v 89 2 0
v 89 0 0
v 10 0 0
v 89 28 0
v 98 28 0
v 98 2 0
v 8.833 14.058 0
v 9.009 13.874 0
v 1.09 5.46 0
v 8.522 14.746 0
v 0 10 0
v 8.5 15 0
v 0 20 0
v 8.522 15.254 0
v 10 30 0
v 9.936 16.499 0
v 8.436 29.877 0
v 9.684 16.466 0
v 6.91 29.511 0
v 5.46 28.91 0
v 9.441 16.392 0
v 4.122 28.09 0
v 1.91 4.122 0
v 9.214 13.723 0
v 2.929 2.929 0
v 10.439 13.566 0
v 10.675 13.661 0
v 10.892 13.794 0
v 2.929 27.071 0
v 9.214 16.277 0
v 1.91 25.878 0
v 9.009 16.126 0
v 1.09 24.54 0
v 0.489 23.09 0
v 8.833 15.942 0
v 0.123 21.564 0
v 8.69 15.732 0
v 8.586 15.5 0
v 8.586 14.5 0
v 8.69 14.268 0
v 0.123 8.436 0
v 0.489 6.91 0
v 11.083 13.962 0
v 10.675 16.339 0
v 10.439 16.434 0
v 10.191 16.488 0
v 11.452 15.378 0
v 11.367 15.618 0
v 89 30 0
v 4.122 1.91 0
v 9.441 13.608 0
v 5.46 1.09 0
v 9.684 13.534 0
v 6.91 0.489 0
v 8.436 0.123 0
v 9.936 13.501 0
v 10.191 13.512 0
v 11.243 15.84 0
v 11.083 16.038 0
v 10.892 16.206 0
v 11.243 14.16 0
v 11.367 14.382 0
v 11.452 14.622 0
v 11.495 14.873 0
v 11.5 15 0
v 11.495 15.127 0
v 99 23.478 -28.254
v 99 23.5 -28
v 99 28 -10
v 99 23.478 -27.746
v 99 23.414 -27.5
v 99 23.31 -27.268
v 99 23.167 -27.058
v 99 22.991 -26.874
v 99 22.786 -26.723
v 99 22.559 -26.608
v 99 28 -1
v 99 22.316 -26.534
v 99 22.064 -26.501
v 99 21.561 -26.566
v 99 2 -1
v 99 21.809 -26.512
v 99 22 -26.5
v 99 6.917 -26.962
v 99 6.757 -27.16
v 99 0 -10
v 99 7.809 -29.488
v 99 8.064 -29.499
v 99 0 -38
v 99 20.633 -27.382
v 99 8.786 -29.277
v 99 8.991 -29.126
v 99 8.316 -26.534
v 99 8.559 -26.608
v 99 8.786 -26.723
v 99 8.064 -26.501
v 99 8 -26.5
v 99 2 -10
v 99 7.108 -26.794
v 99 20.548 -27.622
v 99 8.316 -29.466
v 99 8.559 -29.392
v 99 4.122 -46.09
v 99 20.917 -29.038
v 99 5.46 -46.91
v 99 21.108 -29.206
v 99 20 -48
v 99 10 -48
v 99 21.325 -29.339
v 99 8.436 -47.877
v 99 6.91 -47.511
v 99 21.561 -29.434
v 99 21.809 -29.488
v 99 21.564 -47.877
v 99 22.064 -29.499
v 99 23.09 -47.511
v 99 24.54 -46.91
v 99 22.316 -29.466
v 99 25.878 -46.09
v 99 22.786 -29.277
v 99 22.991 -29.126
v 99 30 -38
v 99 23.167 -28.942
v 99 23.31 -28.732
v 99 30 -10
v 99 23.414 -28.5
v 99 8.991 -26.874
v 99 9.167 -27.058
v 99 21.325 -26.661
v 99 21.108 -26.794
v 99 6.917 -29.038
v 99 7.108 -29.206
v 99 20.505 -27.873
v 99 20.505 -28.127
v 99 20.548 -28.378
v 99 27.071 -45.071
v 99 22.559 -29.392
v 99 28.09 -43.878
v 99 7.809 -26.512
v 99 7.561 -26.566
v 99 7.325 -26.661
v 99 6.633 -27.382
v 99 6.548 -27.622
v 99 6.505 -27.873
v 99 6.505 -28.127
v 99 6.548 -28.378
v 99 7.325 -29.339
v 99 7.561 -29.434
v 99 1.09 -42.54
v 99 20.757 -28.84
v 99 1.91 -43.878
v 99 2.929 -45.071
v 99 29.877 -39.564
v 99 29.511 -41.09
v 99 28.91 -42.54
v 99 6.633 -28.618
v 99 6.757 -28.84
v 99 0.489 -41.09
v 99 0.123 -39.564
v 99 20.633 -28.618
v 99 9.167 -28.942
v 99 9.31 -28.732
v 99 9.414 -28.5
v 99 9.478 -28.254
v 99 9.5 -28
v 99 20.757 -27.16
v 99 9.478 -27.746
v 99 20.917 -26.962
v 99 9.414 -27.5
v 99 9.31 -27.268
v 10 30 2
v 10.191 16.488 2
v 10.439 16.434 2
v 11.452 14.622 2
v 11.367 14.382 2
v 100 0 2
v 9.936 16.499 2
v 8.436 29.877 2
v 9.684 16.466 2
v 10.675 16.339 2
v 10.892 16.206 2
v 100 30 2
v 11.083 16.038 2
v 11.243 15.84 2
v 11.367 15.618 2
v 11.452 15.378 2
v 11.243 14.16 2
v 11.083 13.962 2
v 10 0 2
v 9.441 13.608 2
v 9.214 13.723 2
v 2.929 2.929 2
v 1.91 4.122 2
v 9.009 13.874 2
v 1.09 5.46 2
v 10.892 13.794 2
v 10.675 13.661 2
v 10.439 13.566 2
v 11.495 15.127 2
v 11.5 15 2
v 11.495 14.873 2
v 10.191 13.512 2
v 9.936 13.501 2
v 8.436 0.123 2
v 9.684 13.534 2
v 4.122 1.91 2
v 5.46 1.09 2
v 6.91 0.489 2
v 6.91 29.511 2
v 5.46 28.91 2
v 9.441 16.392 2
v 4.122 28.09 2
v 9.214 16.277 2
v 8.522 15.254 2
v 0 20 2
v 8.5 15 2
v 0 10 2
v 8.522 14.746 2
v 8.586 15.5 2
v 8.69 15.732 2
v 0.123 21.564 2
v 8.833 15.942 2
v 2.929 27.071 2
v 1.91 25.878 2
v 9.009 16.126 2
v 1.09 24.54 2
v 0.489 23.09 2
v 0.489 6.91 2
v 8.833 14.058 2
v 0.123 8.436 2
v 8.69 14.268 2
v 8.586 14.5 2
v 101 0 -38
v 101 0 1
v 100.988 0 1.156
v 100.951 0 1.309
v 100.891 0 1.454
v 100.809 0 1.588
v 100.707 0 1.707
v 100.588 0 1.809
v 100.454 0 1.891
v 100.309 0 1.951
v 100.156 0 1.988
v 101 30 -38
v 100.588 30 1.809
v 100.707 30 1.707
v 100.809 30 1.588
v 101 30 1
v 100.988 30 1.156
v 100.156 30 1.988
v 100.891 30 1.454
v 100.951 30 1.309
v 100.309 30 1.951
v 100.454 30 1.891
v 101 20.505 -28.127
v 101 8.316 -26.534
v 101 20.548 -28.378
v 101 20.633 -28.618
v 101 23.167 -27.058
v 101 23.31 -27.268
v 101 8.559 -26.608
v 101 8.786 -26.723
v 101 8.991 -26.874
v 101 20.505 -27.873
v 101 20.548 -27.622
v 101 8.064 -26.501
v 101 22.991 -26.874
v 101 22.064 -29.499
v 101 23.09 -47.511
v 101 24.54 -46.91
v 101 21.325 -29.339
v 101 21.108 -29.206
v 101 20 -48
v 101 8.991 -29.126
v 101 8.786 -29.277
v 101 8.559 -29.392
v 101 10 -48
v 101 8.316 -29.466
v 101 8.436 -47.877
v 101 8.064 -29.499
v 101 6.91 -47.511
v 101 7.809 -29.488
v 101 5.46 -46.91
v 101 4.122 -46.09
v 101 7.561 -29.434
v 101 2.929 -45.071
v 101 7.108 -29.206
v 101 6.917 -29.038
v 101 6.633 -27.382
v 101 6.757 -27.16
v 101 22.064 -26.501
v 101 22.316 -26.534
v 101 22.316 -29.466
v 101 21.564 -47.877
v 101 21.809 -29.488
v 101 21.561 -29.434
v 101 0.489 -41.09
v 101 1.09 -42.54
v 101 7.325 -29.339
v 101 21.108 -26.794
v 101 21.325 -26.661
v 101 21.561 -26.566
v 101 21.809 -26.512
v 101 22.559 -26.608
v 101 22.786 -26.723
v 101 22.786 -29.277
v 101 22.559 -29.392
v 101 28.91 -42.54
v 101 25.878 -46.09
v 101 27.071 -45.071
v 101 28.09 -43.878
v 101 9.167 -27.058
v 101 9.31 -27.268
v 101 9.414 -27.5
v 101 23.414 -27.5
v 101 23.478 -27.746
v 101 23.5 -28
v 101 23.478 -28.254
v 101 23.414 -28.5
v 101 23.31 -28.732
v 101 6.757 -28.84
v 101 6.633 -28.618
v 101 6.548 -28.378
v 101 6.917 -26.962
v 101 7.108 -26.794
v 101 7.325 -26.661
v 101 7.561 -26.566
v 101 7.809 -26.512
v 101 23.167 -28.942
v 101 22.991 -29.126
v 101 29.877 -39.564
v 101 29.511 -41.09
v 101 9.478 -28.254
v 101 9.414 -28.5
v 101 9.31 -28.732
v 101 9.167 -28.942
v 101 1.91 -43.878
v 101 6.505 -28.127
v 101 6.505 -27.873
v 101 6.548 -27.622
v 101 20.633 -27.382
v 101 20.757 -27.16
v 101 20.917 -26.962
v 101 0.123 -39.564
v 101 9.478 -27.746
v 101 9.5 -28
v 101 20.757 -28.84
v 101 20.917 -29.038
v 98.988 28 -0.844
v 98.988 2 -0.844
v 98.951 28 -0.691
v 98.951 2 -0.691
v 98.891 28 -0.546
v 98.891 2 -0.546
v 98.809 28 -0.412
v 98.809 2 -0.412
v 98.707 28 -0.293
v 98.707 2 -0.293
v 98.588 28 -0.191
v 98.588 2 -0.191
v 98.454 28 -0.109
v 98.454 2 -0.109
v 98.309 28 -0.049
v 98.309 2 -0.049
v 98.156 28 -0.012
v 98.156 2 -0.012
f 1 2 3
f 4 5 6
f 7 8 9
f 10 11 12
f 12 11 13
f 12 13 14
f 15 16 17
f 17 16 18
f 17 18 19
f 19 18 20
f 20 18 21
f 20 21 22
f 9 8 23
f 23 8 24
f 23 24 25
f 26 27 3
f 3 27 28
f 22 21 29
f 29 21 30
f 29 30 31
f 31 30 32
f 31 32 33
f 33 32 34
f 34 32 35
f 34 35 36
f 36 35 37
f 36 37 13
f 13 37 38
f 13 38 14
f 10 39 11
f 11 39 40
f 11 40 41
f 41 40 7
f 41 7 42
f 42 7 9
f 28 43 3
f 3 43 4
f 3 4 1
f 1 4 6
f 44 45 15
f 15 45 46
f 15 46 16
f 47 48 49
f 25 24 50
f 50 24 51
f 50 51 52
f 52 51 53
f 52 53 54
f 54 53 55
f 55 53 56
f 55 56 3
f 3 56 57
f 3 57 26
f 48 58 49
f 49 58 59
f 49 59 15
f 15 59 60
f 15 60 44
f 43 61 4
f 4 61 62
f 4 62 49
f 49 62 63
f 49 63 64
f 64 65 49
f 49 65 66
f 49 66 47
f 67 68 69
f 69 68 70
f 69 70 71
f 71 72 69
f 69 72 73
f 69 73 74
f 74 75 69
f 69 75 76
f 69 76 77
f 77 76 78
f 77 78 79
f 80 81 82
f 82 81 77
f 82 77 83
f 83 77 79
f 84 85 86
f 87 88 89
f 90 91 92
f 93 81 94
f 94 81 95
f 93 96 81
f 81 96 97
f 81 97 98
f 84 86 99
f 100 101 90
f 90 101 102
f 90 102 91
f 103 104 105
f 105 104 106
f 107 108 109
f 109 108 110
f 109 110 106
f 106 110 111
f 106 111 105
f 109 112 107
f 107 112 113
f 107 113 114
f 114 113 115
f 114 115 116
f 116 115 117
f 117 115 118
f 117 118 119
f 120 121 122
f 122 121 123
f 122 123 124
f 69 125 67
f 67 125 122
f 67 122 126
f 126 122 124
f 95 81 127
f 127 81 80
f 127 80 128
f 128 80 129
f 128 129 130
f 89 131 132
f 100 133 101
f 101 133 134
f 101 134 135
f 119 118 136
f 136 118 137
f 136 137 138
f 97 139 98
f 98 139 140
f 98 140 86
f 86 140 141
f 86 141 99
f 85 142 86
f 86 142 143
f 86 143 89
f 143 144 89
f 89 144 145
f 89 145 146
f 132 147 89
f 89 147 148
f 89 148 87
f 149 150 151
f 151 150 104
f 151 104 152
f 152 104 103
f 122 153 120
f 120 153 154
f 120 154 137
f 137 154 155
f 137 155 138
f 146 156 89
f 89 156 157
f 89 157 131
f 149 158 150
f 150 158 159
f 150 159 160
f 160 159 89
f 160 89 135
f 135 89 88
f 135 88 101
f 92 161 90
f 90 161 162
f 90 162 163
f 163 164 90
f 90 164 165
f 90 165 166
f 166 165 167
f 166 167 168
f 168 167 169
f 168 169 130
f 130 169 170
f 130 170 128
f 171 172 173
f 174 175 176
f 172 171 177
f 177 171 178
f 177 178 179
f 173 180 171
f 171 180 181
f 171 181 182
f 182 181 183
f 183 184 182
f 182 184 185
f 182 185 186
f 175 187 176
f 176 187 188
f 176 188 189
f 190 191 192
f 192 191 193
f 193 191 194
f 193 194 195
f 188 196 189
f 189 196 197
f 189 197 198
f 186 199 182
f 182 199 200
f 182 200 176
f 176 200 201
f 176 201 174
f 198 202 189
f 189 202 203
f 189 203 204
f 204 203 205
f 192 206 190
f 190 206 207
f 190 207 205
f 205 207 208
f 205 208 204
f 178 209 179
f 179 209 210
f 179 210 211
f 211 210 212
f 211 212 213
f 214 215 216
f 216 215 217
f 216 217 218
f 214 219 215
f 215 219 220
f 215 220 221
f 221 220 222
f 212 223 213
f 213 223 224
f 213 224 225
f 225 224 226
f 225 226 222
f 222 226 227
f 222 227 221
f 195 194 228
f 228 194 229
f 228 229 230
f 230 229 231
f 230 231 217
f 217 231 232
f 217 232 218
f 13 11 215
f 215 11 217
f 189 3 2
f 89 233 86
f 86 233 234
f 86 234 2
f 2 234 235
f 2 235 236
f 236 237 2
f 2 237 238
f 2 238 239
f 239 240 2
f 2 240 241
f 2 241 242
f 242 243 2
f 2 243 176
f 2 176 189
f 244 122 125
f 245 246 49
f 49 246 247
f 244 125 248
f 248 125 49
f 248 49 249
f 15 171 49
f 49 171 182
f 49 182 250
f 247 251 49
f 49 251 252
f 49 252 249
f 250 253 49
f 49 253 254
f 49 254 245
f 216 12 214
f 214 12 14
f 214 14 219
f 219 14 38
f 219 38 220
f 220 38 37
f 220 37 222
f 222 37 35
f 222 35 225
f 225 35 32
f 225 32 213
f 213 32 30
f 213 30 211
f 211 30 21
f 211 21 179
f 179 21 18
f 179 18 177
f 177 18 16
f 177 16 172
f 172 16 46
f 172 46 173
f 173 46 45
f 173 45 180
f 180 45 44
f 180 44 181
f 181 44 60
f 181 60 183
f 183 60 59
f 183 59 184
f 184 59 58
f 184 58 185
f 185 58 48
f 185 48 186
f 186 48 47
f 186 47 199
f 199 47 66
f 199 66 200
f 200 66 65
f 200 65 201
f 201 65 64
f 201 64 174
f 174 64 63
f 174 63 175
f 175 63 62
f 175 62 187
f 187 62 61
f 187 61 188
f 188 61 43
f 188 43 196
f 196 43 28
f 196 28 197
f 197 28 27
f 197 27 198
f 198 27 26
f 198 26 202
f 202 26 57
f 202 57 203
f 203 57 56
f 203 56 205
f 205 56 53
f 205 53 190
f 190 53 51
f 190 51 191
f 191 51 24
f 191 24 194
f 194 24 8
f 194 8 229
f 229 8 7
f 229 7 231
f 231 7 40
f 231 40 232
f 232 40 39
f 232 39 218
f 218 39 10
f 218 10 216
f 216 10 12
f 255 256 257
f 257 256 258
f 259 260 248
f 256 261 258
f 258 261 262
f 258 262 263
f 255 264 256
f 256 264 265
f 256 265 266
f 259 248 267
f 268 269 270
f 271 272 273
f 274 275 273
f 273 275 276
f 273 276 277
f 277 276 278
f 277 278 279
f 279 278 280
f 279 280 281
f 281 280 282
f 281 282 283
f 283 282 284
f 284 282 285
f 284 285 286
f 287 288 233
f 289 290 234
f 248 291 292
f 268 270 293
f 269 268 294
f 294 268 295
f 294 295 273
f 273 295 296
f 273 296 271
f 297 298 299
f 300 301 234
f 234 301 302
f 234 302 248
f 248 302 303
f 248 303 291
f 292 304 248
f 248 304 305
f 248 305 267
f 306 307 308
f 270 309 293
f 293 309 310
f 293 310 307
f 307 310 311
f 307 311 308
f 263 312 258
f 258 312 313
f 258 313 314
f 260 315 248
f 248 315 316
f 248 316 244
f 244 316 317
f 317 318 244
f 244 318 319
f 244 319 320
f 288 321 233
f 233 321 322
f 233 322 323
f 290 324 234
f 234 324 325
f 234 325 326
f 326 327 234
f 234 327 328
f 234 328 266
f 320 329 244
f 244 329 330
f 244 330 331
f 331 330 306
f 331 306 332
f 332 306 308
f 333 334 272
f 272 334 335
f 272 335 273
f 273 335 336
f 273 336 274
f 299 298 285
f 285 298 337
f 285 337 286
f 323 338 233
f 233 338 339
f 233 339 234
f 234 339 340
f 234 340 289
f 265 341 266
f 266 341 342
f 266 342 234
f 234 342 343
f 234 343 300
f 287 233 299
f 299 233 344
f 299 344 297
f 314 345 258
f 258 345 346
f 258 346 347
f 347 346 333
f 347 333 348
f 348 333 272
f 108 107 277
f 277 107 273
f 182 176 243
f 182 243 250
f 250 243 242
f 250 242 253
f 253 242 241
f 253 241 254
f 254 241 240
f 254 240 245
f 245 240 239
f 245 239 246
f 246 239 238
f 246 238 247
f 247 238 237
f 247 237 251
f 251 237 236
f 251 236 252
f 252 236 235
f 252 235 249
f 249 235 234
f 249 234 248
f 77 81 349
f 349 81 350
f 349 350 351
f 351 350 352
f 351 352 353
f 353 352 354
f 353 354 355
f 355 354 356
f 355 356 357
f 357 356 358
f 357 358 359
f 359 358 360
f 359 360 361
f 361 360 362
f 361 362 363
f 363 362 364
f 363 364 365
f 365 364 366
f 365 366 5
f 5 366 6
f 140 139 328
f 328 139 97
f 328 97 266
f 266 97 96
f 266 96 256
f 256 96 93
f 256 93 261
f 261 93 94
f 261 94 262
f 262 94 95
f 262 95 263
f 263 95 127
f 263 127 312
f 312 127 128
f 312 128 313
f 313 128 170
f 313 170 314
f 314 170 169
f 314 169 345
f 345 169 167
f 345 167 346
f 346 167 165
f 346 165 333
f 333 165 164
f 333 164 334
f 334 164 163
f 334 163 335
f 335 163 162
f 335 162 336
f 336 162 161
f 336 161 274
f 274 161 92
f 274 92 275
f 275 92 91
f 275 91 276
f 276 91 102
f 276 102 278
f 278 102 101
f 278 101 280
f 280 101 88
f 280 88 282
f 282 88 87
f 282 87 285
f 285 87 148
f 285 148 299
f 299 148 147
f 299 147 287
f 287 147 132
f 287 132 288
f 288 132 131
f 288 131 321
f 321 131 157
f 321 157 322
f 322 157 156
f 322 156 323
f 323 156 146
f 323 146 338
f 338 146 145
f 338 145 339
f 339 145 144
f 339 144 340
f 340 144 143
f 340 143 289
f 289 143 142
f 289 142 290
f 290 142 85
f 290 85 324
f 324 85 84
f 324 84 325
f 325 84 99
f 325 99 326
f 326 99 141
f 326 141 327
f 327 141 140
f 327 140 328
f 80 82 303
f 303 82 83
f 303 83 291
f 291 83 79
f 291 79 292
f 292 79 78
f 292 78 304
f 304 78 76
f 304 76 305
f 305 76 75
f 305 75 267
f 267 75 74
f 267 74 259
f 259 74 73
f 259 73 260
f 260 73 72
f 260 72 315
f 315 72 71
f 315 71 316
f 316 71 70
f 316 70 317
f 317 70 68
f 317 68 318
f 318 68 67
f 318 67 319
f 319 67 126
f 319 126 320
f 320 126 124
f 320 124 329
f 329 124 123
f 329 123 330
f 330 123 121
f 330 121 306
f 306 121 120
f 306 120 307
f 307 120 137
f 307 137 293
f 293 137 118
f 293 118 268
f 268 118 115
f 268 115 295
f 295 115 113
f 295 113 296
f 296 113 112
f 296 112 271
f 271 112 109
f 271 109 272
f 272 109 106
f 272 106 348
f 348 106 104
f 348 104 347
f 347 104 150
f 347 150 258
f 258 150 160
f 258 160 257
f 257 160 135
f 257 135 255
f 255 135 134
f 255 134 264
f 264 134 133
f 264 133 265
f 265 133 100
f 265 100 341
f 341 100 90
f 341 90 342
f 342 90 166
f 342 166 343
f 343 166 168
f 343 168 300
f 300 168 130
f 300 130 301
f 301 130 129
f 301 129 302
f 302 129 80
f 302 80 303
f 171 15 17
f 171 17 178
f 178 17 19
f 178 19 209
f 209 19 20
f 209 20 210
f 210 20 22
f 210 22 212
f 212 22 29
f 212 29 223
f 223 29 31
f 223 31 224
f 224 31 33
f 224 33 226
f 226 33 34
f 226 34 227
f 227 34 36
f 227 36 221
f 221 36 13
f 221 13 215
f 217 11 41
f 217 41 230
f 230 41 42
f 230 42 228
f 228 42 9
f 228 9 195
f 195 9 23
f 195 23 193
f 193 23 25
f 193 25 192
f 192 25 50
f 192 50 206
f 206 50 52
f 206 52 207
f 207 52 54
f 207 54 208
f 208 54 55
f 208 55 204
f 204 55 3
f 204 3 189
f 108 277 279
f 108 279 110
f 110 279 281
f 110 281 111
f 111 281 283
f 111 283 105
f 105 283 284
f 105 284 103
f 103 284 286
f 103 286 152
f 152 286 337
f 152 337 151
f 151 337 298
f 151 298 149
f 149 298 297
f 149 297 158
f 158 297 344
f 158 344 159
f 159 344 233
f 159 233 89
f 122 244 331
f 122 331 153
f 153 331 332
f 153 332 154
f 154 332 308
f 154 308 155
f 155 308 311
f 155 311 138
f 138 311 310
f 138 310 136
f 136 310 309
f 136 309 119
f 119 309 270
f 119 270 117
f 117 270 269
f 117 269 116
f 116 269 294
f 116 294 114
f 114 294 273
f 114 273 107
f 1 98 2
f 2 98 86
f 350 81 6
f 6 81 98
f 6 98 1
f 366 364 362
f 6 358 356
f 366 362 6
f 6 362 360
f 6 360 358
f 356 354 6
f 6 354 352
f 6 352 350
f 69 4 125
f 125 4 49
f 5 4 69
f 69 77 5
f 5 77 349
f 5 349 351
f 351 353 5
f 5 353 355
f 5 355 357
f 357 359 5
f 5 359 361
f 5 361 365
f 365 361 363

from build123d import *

# Parameters (mm, degrees)
SKETCH1_W           = 100
SKETCH1_H           = 30
SKETCH1_R           = 1.5
BOSS_EXTRUDE1_DEPTH = 2
SKETCH2_W           = 1
SKETCH2_H           = 30
BOSS_EXTRUDE3_DEPTH = 50
FILLET2_R           = 1
SKETCH3_R           = 1.5
CUT_EXTRUDE1_DEPTH  = 10
FILLET3_R           = 10
BOSS_EXTRUDE4_DEPTH = 2


with BuildPart() as part:
    # Sketch1 → Boss-Extrude1 (new body)
    with BuildSketch(Plane.XY):
        with Locations((50, 15)):
            Rectangle(SKETCH1_W, SKETCH1_H)
        with Locations((10, 15)):
            Circle(SKETCH1_R, mode=Mode.SUBTRACT)
    extrude(amount=BOSS_EXTRUDE1_DEPTH)

    # Sketch2 → Boss-Extrude3 (add)
    with BuildSketch(Plane.XY.offset(2)):
        with Locations((100.5, 15)):
            Rectangle(SKETCH2_W, SKETCH2_H)
        with Locations((99.5, 15)):
            Rectangle(SKETCH2_W, SKETCH2_H)
    extrude(amount=-BOSS_EXTRUDE3_DEPTH)

    # Fillet2
    fillet2_edges = [part.edges().sort_by_distance(p)[0] for p in [
        (101, 15, 2),
        (99, 15, 0),
    ]]
    fillet(fillet2_edges, radius=FILLET2_R)

    # Sketch3 → Cut-Extrude1 (cut)
    with BuildSketch(Plane(origin=(101, 0, 0), x_dir=(0, 0, -1), z_dir=(1, 0, 0))):
        with Locations(Location((28, 8, 0), (0, 0, 90))):
            Circle(SKETCH3_R)
        with Locations(Location((28, 22, 0), (0, 0, 90))):
            Circle(SKETCH3_R)
    extrude(amount=-CUT_EXTRUDE1_DEPTH, mode=Mode.SUBTRACT)

    # Fillet3
    fillet3_edges = [part.edges().sort_by_distance(p)[0] for p in [
        (100, 0, -48),
        (100, 30, -48),
        (0, 30, 1),
        (0, 0, 1),
    ]]
    fillet(fillet3_edges, radius=FILLET3_R)

    # Sketch4 → Boss-Extrude4 (add)
    with BuildSketch(Plane(origin=(0, 0, 0), x_dir=(1, 0, 0), z_dir=(0, 1, 0))):
        with BuildLine():
            Line((99, 10), (89, 0))
            Line((89, 0), (98, 0))
            ThreePointArc((98, 0), (98.707106781, 0.292893219), (99, 1))
            Line((99, 1), (99, 10))
        make_face()
    boss_extrude4 = extrude(amount=BOSS_EXTRUDE4_DEPTH)

    # Mirror1: Boss-Extrude4 across plane
    add(boss_extrude4.mirror(Plane.ZX.offset(15)))


solid = part.part
